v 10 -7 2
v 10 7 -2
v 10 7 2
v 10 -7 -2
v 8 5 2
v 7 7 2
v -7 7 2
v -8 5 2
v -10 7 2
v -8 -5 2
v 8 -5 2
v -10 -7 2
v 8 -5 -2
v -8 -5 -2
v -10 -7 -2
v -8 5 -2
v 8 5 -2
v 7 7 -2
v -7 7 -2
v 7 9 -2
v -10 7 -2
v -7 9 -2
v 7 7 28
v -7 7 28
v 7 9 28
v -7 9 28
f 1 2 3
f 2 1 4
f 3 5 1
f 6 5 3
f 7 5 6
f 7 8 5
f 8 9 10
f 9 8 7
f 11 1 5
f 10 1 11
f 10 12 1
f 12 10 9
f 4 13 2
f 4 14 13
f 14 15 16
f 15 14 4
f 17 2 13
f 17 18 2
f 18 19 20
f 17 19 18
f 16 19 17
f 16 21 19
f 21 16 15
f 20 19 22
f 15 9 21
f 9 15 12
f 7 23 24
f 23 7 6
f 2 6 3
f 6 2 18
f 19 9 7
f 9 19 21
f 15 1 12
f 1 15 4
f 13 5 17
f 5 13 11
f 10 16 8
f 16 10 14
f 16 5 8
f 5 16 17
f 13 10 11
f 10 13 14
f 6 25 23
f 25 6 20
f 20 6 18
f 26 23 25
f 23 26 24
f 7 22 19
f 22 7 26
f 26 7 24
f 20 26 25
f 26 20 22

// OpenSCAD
// ice scoop holder
ed = 8;
ew = 14;
slop = 2;
d = 4;
h = 4;

difference(){
    cube([ew + slop + d, ed + slop + d, h], center=true);
    cube([ew + slop, ed + slop, h + 2], center=true);
}

color("#ff0000")
translate([-ew/2, (ed + slop + d)/ 2, -2])
cube([ew, 2, 30]);
